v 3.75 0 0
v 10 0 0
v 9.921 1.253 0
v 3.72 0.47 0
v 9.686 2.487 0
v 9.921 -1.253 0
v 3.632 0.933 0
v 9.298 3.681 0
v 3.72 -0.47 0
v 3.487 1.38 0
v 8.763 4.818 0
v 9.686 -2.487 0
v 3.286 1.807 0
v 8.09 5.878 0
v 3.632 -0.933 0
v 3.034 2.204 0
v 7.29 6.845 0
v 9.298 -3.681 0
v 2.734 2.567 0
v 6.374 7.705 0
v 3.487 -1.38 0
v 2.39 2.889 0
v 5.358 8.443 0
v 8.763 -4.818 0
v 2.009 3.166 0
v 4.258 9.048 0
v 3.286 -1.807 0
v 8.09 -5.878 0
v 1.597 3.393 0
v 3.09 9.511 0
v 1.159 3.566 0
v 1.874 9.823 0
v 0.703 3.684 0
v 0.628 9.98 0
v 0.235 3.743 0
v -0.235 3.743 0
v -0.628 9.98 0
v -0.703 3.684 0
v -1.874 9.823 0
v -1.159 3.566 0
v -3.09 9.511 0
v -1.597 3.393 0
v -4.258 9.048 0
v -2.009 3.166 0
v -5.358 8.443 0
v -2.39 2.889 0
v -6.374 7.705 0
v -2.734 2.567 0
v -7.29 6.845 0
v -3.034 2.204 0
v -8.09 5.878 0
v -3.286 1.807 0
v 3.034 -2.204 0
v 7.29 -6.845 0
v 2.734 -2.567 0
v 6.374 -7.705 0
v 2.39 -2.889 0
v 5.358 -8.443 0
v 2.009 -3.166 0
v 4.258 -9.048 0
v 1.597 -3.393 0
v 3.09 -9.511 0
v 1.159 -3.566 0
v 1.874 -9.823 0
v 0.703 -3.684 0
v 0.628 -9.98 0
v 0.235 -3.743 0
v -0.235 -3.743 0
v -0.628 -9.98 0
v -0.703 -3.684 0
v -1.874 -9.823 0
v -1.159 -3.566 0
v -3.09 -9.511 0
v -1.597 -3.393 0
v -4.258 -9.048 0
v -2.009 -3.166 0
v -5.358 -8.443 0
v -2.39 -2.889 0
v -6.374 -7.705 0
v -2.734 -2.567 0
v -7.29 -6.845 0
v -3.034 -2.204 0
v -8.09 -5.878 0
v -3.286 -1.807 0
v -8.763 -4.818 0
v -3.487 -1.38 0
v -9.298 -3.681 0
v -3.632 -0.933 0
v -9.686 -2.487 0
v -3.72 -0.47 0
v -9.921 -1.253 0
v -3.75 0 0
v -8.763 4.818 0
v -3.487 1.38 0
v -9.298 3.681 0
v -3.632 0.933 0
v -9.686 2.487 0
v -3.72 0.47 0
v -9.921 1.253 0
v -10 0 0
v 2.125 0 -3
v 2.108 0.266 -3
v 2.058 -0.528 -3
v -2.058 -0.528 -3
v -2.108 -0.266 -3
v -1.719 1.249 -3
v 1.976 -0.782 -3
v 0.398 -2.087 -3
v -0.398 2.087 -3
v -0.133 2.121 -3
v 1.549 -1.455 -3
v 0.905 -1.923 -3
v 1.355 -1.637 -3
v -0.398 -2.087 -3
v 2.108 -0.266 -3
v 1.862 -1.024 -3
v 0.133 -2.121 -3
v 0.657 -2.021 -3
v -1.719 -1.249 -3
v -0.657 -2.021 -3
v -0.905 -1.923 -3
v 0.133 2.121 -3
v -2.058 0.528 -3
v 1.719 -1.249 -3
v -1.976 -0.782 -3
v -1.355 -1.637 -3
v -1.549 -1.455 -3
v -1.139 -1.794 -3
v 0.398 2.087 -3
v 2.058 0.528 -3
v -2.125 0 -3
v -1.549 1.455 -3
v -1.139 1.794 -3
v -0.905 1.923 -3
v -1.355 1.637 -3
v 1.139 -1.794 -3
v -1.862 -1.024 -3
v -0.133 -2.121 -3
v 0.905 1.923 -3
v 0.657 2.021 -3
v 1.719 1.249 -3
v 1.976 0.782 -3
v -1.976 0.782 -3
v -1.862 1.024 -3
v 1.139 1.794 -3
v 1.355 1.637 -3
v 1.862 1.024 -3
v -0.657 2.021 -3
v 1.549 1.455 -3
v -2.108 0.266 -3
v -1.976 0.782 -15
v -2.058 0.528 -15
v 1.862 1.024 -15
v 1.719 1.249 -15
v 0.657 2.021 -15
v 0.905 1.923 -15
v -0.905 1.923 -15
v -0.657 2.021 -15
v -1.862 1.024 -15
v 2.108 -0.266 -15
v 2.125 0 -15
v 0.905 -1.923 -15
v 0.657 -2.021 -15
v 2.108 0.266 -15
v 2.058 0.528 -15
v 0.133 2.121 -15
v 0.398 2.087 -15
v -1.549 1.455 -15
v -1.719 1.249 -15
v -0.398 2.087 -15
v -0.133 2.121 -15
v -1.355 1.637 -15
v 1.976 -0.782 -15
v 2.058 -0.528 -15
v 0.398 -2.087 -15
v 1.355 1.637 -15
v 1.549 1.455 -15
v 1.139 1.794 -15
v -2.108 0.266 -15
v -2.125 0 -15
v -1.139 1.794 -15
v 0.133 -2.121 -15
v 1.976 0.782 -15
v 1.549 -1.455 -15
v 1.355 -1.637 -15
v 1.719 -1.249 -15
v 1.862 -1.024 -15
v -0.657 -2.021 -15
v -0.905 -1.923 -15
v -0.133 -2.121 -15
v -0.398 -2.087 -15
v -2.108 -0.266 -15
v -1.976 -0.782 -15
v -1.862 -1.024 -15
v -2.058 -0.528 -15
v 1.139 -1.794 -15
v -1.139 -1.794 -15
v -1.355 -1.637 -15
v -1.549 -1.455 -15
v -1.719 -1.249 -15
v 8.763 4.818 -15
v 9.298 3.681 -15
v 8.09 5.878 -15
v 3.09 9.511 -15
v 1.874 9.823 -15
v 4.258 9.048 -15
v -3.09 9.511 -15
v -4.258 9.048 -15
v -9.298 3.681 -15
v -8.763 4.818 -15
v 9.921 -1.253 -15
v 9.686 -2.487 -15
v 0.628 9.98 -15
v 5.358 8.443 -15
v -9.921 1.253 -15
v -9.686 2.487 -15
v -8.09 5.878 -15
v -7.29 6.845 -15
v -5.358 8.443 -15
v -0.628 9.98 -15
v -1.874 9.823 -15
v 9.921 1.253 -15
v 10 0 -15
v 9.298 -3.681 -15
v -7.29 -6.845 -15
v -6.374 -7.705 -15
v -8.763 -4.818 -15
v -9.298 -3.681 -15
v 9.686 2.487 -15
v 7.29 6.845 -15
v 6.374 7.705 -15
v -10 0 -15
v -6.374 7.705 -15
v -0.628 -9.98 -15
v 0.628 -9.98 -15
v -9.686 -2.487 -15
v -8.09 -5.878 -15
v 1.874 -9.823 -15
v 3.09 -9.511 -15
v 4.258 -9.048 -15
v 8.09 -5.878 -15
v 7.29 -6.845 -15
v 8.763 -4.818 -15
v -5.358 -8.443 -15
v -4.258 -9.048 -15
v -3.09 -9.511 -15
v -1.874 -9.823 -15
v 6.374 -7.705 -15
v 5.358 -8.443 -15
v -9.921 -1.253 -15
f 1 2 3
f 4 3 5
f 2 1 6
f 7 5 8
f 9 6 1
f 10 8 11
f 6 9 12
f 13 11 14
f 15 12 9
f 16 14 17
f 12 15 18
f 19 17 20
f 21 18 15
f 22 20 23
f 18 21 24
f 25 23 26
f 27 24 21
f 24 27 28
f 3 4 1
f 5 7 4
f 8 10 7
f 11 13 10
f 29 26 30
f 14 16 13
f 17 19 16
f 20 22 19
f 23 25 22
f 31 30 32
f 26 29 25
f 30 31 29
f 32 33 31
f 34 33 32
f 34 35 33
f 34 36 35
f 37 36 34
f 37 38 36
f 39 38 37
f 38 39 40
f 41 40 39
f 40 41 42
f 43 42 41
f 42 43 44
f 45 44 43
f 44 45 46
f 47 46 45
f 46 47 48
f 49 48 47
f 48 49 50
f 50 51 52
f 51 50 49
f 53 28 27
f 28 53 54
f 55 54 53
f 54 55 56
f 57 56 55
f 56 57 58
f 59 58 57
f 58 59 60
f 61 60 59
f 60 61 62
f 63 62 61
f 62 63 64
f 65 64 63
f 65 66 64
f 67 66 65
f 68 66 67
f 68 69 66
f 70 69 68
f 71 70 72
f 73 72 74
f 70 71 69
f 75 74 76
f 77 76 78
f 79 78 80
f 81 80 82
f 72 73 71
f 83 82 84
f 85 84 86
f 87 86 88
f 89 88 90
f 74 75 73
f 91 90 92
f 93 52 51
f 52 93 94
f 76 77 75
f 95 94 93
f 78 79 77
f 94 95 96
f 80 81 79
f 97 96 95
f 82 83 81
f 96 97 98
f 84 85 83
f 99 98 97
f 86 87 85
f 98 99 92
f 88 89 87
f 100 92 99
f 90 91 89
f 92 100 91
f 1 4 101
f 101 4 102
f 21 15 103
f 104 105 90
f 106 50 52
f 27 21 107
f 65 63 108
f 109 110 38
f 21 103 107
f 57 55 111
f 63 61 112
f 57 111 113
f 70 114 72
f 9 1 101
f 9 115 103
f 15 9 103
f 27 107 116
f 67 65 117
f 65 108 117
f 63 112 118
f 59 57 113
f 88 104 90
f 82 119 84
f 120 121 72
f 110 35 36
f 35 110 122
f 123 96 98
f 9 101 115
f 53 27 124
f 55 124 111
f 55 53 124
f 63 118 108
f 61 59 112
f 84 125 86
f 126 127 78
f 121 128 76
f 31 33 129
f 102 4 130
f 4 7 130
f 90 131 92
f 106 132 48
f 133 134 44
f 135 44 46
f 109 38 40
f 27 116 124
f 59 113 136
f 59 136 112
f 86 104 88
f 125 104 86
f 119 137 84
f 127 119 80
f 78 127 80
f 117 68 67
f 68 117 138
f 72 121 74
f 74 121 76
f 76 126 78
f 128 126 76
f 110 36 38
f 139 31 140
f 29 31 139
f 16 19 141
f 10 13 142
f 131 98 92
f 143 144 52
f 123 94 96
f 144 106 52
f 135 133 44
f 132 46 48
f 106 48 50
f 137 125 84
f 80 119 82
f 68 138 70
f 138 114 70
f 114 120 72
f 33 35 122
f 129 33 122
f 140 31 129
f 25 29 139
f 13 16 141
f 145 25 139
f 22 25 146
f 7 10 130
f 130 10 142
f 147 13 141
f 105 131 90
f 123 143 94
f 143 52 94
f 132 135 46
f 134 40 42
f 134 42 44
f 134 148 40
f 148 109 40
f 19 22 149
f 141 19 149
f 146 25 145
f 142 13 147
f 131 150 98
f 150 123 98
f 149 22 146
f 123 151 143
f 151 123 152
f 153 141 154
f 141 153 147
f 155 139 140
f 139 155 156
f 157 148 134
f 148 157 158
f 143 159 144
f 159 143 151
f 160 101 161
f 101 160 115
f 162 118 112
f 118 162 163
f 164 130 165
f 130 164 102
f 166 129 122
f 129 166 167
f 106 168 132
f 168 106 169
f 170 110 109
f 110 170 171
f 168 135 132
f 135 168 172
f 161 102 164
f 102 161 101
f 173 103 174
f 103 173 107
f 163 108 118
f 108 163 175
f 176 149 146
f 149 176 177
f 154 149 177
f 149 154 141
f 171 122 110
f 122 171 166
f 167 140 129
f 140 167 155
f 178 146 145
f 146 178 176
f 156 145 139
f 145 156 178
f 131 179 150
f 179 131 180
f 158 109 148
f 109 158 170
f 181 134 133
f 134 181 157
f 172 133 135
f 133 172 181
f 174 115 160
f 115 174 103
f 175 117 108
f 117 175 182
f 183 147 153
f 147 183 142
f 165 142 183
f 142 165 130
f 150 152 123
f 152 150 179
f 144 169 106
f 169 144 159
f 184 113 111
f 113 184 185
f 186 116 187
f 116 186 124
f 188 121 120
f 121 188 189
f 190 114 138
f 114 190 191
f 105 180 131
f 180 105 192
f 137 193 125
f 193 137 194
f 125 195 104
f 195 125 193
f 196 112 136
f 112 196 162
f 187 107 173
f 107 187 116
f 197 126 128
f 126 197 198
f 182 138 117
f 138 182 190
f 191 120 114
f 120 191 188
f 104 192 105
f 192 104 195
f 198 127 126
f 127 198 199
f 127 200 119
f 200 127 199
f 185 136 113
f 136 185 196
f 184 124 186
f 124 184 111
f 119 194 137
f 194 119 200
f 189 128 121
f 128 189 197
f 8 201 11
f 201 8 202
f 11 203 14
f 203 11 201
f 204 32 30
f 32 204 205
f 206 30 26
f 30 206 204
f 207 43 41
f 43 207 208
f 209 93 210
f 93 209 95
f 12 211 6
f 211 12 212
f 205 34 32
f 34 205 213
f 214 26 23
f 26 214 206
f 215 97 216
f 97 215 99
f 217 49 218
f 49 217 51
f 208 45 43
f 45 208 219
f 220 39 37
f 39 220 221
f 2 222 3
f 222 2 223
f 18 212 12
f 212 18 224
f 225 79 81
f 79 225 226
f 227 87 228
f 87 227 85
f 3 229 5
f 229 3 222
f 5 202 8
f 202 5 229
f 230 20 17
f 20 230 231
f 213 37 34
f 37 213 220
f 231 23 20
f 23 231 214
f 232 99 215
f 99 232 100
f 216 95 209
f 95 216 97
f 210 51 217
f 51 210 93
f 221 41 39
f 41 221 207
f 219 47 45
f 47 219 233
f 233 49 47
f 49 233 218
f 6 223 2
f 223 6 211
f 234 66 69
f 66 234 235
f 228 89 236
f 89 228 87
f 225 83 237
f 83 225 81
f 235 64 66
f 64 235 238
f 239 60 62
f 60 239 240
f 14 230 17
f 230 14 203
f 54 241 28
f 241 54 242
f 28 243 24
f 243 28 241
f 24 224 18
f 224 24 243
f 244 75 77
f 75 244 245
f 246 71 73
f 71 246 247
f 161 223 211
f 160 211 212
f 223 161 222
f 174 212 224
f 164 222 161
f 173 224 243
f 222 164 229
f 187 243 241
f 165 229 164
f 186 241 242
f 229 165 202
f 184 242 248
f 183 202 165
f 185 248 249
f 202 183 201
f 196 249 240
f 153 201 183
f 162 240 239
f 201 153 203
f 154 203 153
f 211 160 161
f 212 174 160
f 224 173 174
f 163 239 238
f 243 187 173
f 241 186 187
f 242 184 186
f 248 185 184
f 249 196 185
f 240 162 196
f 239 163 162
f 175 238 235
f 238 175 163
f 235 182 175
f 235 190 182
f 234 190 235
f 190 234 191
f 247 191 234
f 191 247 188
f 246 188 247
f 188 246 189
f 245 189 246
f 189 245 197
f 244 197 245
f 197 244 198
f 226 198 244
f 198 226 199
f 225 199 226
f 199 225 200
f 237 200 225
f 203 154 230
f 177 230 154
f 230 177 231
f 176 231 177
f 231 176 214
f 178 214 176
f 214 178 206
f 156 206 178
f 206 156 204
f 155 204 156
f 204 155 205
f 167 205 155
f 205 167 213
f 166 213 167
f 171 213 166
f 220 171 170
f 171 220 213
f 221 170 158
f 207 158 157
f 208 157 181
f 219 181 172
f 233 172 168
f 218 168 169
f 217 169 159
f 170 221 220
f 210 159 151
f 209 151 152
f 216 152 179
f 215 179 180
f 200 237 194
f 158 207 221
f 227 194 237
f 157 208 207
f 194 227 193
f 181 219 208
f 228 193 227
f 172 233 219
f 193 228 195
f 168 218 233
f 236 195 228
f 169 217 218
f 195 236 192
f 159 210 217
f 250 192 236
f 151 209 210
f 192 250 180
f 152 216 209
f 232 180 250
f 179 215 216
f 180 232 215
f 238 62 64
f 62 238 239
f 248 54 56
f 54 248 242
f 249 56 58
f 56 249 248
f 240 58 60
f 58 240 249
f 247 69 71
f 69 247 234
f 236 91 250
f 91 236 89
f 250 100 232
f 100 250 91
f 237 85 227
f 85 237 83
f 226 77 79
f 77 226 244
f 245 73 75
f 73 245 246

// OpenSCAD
$fn = 50;


difference() {
	union() {
		translate(v = [0, 0, -15.0000000000]) {
			cylinder(h = 15, r = 10.0000000000);
		}
	}
	union() {
		translate(v = [0, 0, 0]) {
			rotate(a = [0, 0, 0]) {
				difference() {
					union() {
						translate(v = [0, 0, -18.0000000000]) {
							cylinder(h = 18, r = 2.0000000000);
						}
						translate(v = [0, 0, -3]) {
							cylinder(h = 3, r1 = 2.1250000000, r2 = 3.7500000000);
						}
						translate(v = [0, 0, -18.0000000000]) {
							cylinder(h = 18, r = 2.1250000000);
						}
						translate(v = [0, 0, -18.0000000000]) {
							cylinder(h = 18, r = 2.0000000000);
						}
					}
					union();
				}
			}
		}
	}
}
